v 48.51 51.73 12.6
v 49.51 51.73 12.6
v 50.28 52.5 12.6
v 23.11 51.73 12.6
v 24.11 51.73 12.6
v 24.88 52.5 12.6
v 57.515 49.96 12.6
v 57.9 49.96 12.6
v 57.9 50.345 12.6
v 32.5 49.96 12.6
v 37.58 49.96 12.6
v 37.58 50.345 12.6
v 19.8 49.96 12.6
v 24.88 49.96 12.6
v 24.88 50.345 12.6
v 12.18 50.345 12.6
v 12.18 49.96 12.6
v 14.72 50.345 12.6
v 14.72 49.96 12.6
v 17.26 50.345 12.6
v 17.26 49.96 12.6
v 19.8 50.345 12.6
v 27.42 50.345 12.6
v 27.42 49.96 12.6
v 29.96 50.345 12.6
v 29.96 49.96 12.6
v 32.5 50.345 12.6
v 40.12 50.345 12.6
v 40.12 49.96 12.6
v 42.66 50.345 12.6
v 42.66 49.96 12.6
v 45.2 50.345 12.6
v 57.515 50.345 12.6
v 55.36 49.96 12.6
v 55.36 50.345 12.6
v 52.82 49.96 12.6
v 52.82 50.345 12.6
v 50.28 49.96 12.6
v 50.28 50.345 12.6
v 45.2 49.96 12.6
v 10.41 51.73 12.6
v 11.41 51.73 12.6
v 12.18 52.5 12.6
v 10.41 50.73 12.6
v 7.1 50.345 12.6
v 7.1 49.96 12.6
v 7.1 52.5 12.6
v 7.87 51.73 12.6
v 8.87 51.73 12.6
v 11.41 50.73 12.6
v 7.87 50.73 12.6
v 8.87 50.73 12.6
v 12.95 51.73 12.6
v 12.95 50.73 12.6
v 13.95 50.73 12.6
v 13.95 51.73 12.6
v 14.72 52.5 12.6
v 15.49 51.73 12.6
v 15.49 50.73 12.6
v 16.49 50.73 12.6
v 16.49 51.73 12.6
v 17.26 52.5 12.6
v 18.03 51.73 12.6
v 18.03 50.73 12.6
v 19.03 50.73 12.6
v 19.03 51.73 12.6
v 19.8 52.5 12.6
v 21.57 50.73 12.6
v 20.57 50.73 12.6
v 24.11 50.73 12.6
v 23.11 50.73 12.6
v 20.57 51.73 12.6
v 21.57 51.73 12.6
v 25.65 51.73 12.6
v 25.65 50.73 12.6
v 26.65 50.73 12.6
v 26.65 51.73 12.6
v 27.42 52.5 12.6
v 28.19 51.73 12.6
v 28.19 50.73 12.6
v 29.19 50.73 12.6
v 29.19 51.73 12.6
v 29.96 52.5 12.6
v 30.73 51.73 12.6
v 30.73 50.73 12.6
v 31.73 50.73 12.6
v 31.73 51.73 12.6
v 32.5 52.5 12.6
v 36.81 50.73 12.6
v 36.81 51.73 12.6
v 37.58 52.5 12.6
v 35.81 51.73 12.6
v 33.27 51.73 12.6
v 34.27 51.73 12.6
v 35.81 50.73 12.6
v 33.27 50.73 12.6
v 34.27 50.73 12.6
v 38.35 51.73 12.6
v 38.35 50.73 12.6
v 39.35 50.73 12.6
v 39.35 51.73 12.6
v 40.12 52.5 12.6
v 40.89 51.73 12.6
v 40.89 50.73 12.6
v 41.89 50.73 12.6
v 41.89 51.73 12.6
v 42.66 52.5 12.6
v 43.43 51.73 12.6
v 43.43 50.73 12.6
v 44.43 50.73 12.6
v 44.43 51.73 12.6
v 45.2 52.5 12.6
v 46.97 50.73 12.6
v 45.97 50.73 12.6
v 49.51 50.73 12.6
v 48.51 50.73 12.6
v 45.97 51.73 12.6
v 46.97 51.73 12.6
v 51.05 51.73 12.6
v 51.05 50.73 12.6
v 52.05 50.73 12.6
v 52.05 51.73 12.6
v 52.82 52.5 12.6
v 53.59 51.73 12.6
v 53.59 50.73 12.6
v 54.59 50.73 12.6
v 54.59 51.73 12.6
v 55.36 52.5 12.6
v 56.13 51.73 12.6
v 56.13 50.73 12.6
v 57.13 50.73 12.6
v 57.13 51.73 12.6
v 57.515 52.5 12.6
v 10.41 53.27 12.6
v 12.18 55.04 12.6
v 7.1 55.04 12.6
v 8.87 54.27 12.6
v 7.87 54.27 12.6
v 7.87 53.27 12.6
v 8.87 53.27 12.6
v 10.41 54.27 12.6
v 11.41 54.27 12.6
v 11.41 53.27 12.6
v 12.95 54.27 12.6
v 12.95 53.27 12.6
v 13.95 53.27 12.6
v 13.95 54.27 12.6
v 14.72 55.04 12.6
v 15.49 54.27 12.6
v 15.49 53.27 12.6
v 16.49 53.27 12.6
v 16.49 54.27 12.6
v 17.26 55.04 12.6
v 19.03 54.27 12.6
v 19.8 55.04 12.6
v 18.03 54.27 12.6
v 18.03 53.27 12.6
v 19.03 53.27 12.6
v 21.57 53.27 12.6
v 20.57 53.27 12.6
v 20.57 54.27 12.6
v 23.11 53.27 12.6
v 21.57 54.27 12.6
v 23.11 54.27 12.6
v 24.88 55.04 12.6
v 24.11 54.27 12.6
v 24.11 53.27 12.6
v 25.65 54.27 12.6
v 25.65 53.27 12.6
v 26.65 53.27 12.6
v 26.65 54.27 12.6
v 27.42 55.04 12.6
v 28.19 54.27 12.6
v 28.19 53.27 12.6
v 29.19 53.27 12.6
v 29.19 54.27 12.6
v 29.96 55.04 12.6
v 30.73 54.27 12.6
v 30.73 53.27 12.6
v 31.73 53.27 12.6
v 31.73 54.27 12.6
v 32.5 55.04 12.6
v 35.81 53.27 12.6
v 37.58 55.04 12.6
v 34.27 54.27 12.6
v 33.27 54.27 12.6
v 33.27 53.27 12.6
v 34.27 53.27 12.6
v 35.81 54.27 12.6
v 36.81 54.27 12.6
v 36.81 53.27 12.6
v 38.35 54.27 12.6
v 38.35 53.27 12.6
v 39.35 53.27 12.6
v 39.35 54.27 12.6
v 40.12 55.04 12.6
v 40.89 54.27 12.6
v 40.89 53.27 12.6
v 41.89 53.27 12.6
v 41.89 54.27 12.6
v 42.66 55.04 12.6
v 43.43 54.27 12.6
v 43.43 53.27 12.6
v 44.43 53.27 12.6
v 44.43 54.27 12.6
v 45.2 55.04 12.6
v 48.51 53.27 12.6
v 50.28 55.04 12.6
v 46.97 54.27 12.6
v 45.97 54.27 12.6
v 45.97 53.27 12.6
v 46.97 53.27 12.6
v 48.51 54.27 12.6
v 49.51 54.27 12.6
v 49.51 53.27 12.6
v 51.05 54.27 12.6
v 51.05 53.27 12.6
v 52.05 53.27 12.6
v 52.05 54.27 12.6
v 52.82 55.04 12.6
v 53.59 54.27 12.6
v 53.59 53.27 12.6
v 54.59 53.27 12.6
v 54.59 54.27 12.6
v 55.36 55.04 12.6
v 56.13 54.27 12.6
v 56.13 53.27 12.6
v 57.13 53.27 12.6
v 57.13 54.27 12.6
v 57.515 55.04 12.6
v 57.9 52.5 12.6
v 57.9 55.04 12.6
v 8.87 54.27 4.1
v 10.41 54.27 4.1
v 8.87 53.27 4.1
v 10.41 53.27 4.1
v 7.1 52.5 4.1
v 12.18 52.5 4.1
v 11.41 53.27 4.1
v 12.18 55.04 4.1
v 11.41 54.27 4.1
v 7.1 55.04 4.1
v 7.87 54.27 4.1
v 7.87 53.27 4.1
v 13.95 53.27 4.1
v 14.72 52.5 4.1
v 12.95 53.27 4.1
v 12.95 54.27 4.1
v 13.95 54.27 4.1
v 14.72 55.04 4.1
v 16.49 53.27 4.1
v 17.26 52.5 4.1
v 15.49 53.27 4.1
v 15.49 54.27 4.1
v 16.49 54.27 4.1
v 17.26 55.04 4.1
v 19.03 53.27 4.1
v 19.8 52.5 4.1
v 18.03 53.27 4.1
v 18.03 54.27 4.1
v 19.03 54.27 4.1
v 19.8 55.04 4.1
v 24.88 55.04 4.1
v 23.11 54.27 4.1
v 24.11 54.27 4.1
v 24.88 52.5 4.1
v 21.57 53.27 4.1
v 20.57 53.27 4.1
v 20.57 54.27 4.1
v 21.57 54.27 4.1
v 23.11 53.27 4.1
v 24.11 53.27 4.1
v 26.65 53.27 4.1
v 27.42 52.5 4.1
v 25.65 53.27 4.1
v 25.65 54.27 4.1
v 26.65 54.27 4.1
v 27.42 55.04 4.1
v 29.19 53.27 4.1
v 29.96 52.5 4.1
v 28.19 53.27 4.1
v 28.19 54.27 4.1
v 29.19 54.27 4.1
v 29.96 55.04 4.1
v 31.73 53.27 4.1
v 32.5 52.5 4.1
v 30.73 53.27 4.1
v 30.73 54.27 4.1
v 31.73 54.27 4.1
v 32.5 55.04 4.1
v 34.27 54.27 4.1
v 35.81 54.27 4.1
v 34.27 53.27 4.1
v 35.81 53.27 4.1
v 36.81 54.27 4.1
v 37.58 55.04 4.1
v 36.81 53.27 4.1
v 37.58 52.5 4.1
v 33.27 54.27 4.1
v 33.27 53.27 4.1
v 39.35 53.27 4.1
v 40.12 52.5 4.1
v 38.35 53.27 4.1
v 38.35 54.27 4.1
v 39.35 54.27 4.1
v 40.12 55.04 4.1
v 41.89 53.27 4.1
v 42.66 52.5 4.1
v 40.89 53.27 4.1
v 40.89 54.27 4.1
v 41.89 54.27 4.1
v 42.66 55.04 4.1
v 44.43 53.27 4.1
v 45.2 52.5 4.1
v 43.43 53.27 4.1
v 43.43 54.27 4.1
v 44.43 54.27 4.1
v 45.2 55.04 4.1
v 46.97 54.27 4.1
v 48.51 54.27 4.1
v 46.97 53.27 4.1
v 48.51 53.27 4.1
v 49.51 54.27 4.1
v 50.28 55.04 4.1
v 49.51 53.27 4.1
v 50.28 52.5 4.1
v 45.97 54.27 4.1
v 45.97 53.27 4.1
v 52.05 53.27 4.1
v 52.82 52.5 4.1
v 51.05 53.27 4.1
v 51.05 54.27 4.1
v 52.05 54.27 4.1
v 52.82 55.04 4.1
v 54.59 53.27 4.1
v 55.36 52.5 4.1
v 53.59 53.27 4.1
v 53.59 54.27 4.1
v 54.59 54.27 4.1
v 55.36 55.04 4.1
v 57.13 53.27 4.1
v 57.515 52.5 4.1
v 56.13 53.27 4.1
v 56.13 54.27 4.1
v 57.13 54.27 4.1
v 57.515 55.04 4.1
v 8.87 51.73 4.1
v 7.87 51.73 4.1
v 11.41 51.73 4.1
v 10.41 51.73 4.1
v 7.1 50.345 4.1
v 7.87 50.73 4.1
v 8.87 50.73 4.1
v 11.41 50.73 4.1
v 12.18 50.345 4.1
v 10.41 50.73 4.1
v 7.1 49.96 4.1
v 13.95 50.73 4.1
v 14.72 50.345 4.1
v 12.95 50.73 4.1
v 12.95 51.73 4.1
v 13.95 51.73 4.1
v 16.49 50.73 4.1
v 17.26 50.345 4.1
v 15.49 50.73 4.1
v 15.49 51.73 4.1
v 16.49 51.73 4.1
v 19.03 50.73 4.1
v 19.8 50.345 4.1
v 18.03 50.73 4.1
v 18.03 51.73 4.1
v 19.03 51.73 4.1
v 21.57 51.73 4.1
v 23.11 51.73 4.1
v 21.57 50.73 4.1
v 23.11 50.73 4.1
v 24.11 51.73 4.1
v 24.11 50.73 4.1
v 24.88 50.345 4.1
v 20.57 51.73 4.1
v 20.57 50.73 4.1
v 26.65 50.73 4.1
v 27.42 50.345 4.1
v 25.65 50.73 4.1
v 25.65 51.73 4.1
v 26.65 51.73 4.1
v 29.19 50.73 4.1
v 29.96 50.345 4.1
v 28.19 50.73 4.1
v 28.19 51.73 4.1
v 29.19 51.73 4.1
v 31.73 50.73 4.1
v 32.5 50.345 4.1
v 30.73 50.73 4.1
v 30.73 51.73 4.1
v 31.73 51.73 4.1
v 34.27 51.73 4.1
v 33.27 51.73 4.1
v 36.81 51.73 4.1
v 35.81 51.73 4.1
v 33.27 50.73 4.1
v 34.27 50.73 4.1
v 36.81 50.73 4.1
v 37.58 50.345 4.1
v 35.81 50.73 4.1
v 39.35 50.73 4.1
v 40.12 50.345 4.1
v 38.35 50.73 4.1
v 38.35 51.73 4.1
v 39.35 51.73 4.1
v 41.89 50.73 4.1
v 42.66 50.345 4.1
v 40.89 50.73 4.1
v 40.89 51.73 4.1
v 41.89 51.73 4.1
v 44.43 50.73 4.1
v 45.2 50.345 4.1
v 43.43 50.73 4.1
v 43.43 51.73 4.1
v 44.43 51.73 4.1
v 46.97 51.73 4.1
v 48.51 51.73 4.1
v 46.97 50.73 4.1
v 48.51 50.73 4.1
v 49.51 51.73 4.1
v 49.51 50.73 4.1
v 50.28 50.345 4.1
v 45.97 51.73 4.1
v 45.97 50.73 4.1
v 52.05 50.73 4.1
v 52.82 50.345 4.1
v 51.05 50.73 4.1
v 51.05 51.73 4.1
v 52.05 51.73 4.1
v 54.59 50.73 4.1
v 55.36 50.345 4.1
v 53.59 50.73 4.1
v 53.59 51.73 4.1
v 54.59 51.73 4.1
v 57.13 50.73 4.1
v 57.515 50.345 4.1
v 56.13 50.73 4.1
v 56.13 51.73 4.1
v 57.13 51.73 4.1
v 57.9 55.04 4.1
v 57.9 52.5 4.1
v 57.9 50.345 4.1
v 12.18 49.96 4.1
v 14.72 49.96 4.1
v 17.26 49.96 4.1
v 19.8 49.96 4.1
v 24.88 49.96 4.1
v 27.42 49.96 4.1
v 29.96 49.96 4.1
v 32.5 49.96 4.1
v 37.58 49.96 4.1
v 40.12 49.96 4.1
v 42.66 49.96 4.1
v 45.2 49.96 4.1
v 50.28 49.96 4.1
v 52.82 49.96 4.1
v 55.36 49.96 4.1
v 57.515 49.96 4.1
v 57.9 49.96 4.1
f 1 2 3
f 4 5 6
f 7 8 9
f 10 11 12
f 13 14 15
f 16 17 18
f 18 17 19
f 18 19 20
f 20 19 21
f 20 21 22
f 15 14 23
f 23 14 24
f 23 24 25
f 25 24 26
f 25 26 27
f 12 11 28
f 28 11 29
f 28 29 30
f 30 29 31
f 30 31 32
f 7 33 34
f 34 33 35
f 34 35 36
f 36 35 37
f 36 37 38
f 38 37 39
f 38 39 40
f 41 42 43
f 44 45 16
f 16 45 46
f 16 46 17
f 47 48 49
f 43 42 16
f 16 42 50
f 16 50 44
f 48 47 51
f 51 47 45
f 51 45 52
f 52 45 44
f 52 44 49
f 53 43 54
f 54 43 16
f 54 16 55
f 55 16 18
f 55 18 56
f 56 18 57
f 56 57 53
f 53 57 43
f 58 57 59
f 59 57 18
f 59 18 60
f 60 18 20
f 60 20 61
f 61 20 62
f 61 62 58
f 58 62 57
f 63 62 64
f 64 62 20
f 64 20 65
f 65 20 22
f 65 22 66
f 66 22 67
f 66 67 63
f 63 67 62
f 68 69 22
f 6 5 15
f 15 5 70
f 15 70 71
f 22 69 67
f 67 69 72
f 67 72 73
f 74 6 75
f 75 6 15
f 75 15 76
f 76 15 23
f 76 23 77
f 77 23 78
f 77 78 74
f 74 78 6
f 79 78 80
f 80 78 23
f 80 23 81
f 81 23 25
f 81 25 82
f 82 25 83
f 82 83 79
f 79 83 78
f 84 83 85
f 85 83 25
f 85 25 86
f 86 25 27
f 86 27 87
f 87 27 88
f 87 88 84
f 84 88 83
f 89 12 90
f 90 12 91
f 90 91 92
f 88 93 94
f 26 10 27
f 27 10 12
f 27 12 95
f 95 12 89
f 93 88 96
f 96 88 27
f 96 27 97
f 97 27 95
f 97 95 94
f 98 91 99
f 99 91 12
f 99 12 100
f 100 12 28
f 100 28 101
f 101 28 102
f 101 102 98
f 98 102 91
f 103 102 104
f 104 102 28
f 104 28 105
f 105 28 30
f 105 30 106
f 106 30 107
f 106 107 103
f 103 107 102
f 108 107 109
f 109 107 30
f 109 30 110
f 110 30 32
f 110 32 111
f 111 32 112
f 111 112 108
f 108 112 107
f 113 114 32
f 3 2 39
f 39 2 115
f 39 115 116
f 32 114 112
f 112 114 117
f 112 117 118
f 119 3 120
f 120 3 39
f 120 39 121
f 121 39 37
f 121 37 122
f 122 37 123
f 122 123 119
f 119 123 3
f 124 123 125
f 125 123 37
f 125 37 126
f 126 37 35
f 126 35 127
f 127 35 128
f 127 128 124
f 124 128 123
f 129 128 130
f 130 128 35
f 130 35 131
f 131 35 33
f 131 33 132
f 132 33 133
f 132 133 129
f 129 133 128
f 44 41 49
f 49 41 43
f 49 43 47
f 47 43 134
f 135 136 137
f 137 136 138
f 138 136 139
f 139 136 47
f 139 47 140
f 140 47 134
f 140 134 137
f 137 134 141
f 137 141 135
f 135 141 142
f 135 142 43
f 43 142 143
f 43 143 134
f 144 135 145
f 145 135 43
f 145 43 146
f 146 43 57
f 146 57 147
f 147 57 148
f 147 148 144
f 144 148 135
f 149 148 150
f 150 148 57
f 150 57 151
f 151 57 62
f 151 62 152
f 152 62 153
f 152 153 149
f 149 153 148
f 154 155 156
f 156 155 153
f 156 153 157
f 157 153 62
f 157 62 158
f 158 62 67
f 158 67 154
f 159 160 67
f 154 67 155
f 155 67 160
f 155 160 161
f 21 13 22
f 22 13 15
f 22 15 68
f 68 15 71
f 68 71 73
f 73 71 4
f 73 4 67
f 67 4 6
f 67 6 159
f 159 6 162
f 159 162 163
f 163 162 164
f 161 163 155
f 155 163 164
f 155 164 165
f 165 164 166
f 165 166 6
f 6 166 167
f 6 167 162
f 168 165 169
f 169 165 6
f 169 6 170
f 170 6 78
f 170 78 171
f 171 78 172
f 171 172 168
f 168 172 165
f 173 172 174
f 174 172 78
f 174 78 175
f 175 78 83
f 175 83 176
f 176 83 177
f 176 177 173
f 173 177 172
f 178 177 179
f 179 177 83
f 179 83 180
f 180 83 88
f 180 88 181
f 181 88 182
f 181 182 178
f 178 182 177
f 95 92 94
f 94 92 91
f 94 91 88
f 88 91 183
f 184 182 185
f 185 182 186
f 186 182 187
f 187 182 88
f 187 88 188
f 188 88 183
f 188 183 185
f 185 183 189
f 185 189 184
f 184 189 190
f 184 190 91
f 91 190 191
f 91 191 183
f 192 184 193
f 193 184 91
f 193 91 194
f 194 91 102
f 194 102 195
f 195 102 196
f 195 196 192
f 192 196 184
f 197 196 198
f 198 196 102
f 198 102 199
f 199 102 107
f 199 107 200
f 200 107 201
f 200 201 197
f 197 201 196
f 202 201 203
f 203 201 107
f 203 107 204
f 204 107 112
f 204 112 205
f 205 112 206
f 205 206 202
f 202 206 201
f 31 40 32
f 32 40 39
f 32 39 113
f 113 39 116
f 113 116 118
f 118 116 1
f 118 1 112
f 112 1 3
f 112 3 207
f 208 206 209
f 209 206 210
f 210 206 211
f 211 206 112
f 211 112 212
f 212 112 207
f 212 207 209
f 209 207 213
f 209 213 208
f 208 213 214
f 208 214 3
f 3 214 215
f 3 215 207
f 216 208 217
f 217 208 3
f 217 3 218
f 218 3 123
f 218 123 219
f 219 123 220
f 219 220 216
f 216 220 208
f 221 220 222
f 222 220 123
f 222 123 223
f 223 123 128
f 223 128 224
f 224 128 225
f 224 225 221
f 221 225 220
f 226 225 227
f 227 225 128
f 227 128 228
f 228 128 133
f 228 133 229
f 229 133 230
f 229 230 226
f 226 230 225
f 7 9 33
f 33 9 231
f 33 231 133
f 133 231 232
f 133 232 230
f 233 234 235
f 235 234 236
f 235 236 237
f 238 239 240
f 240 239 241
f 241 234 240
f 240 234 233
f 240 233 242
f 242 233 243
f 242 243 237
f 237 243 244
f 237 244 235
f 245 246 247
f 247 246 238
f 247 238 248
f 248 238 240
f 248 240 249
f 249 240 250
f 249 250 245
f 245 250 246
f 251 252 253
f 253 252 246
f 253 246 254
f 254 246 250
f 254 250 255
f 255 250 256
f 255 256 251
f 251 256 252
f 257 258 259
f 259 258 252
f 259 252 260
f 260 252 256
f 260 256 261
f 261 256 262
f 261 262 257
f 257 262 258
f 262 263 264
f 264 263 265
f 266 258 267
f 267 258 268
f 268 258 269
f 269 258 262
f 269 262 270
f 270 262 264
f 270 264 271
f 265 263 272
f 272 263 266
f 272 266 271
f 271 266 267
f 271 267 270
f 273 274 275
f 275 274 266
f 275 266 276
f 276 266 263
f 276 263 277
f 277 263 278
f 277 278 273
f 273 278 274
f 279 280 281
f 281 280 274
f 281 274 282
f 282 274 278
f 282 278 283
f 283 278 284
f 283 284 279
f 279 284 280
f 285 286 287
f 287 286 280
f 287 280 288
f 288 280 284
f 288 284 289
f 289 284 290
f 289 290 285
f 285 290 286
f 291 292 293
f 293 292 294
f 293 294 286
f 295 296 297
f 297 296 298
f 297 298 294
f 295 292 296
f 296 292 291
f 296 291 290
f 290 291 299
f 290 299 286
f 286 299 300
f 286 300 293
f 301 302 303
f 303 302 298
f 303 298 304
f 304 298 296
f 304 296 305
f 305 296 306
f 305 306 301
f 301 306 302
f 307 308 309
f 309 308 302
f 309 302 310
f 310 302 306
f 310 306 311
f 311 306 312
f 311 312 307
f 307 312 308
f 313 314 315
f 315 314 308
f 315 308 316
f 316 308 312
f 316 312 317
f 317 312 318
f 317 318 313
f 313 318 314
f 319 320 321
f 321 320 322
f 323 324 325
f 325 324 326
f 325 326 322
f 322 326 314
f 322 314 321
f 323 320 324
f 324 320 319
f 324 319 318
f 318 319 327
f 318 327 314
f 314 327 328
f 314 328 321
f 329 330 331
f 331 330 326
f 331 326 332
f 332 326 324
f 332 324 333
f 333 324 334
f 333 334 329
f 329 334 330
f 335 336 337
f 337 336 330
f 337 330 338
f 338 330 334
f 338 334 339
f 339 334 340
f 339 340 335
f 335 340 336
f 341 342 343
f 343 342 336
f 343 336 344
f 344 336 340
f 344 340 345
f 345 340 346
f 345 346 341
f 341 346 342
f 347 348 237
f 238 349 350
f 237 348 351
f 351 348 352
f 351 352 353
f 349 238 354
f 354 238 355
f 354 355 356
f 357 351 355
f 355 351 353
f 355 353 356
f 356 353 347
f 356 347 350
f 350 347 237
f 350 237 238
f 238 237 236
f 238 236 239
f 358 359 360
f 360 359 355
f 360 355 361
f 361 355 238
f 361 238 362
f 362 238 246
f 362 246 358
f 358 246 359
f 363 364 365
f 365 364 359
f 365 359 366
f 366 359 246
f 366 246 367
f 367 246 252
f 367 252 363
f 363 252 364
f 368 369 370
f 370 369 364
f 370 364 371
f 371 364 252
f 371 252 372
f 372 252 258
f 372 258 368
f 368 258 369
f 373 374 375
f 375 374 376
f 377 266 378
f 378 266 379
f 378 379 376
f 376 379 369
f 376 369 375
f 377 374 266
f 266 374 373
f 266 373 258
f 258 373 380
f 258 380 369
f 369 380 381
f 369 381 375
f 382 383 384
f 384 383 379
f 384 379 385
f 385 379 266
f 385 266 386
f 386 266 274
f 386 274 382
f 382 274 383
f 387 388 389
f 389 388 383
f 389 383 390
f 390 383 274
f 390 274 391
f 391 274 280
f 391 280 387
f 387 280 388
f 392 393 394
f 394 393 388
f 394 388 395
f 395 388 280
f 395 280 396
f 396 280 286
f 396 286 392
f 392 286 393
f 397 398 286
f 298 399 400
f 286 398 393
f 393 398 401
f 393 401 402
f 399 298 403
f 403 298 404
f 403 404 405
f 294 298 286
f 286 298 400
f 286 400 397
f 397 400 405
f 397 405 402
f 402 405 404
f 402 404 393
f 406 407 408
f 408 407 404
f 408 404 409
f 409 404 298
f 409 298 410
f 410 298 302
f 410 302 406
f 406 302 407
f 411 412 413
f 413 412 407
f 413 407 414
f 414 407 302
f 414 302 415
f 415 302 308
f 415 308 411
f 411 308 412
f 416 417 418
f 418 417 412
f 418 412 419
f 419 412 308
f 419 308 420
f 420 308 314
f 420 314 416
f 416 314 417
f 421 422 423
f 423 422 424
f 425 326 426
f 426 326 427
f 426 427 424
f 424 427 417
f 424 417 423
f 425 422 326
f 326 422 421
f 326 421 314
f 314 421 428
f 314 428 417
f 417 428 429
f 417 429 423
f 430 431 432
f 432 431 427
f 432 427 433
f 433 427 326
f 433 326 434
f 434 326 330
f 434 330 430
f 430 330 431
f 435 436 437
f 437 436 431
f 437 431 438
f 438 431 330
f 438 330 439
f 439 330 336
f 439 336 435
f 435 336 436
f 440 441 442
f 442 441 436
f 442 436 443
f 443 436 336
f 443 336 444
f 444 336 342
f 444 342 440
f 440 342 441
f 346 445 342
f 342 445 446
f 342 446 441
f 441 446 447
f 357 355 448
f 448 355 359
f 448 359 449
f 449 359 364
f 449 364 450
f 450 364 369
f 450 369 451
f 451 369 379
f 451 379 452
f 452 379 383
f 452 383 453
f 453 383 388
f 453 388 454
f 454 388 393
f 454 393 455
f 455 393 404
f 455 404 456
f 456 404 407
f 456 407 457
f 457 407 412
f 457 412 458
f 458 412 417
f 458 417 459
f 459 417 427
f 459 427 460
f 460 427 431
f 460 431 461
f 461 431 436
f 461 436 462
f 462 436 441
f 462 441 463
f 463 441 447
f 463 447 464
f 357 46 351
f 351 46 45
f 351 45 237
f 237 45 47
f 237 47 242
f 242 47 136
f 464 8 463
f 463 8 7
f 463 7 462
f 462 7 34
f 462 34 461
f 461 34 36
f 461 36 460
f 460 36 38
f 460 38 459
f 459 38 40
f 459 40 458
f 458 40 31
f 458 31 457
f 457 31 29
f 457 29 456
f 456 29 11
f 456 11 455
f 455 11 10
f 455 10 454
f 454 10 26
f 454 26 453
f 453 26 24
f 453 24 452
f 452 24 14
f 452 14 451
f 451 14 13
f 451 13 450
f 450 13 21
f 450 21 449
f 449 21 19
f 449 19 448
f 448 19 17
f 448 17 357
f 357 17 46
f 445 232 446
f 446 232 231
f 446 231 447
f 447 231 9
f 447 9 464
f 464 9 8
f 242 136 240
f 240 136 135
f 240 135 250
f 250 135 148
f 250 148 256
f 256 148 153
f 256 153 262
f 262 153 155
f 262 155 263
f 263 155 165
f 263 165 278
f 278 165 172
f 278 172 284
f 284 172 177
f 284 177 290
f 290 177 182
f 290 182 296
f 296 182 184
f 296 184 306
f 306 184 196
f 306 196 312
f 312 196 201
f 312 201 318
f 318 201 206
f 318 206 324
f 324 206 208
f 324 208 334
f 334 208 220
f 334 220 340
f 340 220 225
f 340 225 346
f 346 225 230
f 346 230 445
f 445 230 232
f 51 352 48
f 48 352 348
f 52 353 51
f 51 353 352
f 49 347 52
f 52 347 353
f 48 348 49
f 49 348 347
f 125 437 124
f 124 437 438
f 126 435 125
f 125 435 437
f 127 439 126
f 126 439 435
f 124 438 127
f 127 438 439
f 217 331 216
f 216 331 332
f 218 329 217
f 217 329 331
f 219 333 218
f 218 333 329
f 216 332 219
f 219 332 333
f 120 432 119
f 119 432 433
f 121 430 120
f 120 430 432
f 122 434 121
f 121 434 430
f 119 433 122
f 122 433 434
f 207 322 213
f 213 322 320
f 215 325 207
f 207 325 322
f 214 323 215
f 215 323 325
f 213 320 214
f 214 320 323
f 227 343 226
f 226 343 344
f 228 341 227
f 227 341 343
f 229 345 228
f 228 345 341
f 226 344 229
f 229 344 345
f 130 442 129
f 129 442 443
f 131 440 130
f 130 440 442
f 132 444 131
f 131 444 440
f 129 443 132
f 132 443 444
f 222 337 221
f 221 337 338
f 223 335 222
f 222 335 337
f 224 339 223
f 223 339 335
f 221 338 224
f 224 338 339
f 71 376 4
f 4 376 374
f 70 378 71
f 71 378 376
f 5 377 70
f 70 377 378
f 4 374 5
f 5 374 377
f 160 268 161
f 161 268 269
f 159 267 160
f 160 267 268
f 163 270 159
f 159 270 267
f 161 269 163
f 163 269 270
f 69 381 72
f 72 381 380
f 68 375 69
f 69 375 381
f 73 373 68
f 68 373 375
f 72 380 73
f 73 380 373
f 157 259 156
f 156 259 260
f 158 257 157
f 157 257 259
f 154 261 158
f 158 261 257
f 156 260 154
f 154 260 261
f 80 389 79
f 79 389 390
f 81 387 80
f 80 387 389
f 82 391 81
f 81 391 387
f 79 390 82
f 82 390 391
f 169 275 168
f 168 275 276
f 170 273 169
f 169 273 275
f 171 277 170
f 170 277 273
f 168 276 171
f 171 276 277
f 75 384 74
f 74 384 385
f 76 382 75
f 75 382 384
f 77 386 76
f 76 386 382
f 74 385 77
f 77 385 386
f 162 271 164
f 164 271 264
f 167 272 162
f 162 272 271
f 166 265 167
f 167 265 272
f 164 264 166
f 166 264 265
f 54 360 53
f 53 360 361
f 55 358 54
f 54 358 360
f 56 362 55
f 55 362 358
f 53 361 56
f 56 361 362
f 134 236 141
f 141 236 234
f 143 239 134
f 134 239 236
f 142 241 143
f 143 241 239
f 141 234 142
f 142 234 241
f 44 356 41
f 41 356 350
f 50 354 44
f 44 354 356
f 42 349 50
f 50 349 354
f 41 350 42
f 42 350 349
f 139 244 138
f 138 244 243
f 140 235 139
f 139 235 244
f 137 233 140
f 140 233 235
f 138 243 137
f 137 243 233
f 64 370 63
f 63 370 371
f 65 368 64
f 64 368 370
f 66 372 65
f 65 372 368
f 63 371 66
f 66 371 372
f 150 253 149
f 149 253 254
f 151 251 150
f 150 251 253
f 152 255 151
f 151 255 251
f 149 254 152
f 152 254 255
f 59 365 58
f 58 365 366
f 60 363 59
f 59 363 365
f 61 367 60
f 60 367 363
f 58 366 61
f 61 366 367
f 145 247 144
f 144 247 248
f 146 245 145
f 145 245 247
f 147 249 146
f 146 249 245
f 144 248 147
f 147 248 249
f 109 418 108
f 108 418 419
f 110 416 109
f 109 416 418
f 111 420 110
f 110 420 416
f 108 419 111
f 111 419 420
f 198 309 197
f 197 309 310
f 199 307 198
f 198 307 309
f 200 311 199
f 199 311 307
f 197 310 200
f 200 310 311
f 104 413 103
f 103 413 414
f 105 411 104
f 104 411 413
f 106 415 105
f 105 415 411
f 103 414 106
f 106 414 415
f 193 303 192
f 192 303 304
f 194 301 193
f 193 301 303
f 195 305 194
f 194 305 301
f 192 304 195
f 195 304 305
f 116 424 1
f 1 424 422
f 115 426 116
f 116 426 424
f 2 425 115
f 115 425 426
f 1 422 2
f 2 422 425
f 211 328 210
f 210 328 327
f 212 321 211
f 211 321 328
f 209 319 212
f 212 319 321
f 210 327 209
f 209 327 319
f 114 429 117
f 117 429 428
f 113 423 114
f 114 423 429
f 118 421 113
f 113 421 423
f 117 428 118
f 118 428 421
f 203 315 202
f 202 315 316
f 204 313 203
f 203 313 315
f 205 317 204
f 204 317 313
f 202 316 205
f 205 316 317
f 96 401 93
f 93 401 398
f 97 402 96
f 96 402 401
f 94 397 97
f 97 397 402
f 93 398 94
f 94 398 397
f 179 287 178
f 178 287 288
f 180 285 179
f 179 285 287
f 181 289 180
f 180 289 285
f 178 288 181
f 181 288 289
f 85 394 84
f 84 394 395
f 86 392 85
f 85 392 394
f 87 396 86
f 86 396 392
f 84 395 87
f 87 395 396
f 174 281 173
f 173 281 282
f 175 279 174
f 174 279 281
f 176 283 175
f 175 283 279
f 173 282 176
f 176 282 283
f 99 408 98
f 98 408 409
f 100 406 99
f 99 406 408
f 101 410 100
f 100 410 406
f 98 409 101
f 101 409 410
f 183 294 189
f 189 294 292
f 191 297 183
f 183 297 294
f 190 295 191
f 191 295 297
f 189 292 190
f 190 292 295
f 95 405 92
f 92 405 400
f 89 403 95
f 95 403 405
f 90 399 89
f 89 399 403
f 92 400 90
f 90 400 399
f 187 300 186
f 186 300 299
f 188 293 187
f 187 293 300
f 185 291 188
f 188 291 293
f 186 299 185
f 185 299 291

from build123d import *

# Parameters (mm, degrees)
SKETCH1_W               = 50.8
SKETCH1_H               = 5.08
SOCKET_BODY_DEPTH       = 8.5
SOCKET_HOLES_DEPTH      = 81.873800455
SOCKET_HOLES_DEPTH_BACK = 81.873800455
SKETCH2_W               = 1
SKETCH2_H               = 1


with BuildPart() as part:
    # Sketch1 → Socket_Body (new body)
    with BuildSketch(Plane.XY.offset(4.1)):
        with Locations((32.5, 52.5)):
            Rectangle(SKETCH1_W, SKETCH1_H)
    extrude(amount=SOCKET_BODY_DEPTH)

    # Sketch2 → Socket_Holes (cut, two sides: drawn at the far end of the back side and taken through both)
    with BuildSketch(Plane.XY.offset(-SOCKET_HOLES_DEPTH_BACK)):
        with Locations((8.37, 51.23)):
            Rectangle(SKETCH2_W, SKETCH2_H)
        with Locations((8.37, 53.77)):
            Rectangle(SKETCH2_W, SKETCH2_H)
        with Locations((10.91, 51.23)):
            Rectangle(SKETCH2_W, SKETCH2_H)
        with Locations((10.91, 53.77)):
            Rectangle(SKETCH2_W, SKETCH2_H)
        with Locations((13.45, 51.23)):
            Rectangle(SKETCH2_W, SKETCH2_H)
        with Locations((13.45, 53.77)):
            Rectangle(SKETCH2_W, SKETCH2_H)
        with Locations((15.99, 51.23)):
            Rectangle(SKETCH2_W, SKETCH2_H)
        with Locations((15.99, 53.77)):
            Rectangle(SKETCH2_W, SKETCH2_H)
        with Locations((18.53, 51.23)):
            Rectangle(SKETCH2_W, SKETCH2_H)
        with Locations((18.53, 53.77)):
            Rectangle(SKETCH2_W, SKETCH2_H)
        with Locations((21.07, 51.23)):
            Rectangle(SKETCH2_W, SKETCH2_H)
        with Locations((21.07, 53.77)):
            Rectangle(SKETCH2_W, SKETCH2_H)
        with Locations((23.61, 51.23)):
            Rectangle(SKETCH2_W, SKETCH2_H)
        with Locations((23.61, 53.77)):
            Rectangle(SKETCH2_W, SKETCH2_H)
        with Locations((26.15, 51.23)):
            Rectangle(SKETCH2_W, SKETCH2_H)
        with Locations((26.15, 53.77)):
            Rectangle(SKETCH2_W, SKETCH2_H)
        with Locations((28.69, 51.23)):
            Rectangle(SKETCH2_W, SKETCH2_H)
        with Locations((28.69, 53.77)):
            Rectangle(SKETCH2_W, SKETCH2_H)
        with Locations((31.23, 51.23)):
            Rectangle(SKETCH2_W, SKETCH2_H)
        with Locations((31.23, 53.77)):
            Rectangle(SKETCH2_W, SKETCH2_H)
        with Locations((33.77, 51.23)):
            Rectangle(SKETCH2_W, SKETCH2_H)
        with Locations((33.77, 53.77)):
            Rectangle(SKETCH2_W, SKETCH2_H)
        with Locations((36.31, 51.23)):
            Rectangle(SKETCH2_W, SKETCH2_H)
        with Locations((36.31, 53.77)):
            Rectangle(SKETCH2_W, SKETCH2_H)
        with Locations((38.85, 51.23)):
            Rectangle(SKETCH2_W, SKETCH2_H)
        with Locations((38.85, 53.77)):
            Rectangle(SKETCH2_W, SKETCH2_H)
        with Locations((41.39, 51.23)):
            Rectangle(SKETCH2_W, SKETCH2_H)
        with Locations((41.39, 53.77)):
            Rectangle(SKETCH2_W, SKETCH2_H)
        with Locations((43.93, 51.23)):
            Rectangle(SKETCH2_W, SKETCH2_H)
        with Locations((43.93, 53.77)):
            Rectangle(SKETCH2_W, SKETCH2_H)
        with Locations((46.47, 51.23)):
            Rectangle(SKETCH2_W, SKETCH2_H)
        with Locations((46.47, 53.77)):
            Rectangle(SKETCH2_W, SKETCH2_H)
        with Locations((49.01, 51.23)):
            Rectangle(SKETCH2_W, SKETCH2_H)
        with Locations((49.01, 53.77)):
            Rectangle(SKETCH2_W, SKETCH2_H)
        with Locations((51.55, 51.23)):
            Rectangle(SKETCH2_W, SKETCH2_H)
        with Locations((51.55, 53.77)):
            Rectangle(SKETCH2_W, SKETCH2_H)
        with Locations((54.09, 51.23)):
            Rectangle(SKETCH2_W, SKETCH2_H)
        with Locations((54.09, 53.77)):
            Rectangle(SKETCH2_W, SKETCH2_H)
        with Locations((56.63, 51.23)):
            Rectangle(SKETCH2_W, SKETCH2_H)
        with Locations((56.63, 53.77)):
            Rectangle(SKETCH2_W, SKETCH2_H)
    extrude(amount=SOCKET_HOLES_DEPTH + SOCKET_HOLES_DEPTH_BACK, mode=Mode.SUBTRACT)


solid = part.part
